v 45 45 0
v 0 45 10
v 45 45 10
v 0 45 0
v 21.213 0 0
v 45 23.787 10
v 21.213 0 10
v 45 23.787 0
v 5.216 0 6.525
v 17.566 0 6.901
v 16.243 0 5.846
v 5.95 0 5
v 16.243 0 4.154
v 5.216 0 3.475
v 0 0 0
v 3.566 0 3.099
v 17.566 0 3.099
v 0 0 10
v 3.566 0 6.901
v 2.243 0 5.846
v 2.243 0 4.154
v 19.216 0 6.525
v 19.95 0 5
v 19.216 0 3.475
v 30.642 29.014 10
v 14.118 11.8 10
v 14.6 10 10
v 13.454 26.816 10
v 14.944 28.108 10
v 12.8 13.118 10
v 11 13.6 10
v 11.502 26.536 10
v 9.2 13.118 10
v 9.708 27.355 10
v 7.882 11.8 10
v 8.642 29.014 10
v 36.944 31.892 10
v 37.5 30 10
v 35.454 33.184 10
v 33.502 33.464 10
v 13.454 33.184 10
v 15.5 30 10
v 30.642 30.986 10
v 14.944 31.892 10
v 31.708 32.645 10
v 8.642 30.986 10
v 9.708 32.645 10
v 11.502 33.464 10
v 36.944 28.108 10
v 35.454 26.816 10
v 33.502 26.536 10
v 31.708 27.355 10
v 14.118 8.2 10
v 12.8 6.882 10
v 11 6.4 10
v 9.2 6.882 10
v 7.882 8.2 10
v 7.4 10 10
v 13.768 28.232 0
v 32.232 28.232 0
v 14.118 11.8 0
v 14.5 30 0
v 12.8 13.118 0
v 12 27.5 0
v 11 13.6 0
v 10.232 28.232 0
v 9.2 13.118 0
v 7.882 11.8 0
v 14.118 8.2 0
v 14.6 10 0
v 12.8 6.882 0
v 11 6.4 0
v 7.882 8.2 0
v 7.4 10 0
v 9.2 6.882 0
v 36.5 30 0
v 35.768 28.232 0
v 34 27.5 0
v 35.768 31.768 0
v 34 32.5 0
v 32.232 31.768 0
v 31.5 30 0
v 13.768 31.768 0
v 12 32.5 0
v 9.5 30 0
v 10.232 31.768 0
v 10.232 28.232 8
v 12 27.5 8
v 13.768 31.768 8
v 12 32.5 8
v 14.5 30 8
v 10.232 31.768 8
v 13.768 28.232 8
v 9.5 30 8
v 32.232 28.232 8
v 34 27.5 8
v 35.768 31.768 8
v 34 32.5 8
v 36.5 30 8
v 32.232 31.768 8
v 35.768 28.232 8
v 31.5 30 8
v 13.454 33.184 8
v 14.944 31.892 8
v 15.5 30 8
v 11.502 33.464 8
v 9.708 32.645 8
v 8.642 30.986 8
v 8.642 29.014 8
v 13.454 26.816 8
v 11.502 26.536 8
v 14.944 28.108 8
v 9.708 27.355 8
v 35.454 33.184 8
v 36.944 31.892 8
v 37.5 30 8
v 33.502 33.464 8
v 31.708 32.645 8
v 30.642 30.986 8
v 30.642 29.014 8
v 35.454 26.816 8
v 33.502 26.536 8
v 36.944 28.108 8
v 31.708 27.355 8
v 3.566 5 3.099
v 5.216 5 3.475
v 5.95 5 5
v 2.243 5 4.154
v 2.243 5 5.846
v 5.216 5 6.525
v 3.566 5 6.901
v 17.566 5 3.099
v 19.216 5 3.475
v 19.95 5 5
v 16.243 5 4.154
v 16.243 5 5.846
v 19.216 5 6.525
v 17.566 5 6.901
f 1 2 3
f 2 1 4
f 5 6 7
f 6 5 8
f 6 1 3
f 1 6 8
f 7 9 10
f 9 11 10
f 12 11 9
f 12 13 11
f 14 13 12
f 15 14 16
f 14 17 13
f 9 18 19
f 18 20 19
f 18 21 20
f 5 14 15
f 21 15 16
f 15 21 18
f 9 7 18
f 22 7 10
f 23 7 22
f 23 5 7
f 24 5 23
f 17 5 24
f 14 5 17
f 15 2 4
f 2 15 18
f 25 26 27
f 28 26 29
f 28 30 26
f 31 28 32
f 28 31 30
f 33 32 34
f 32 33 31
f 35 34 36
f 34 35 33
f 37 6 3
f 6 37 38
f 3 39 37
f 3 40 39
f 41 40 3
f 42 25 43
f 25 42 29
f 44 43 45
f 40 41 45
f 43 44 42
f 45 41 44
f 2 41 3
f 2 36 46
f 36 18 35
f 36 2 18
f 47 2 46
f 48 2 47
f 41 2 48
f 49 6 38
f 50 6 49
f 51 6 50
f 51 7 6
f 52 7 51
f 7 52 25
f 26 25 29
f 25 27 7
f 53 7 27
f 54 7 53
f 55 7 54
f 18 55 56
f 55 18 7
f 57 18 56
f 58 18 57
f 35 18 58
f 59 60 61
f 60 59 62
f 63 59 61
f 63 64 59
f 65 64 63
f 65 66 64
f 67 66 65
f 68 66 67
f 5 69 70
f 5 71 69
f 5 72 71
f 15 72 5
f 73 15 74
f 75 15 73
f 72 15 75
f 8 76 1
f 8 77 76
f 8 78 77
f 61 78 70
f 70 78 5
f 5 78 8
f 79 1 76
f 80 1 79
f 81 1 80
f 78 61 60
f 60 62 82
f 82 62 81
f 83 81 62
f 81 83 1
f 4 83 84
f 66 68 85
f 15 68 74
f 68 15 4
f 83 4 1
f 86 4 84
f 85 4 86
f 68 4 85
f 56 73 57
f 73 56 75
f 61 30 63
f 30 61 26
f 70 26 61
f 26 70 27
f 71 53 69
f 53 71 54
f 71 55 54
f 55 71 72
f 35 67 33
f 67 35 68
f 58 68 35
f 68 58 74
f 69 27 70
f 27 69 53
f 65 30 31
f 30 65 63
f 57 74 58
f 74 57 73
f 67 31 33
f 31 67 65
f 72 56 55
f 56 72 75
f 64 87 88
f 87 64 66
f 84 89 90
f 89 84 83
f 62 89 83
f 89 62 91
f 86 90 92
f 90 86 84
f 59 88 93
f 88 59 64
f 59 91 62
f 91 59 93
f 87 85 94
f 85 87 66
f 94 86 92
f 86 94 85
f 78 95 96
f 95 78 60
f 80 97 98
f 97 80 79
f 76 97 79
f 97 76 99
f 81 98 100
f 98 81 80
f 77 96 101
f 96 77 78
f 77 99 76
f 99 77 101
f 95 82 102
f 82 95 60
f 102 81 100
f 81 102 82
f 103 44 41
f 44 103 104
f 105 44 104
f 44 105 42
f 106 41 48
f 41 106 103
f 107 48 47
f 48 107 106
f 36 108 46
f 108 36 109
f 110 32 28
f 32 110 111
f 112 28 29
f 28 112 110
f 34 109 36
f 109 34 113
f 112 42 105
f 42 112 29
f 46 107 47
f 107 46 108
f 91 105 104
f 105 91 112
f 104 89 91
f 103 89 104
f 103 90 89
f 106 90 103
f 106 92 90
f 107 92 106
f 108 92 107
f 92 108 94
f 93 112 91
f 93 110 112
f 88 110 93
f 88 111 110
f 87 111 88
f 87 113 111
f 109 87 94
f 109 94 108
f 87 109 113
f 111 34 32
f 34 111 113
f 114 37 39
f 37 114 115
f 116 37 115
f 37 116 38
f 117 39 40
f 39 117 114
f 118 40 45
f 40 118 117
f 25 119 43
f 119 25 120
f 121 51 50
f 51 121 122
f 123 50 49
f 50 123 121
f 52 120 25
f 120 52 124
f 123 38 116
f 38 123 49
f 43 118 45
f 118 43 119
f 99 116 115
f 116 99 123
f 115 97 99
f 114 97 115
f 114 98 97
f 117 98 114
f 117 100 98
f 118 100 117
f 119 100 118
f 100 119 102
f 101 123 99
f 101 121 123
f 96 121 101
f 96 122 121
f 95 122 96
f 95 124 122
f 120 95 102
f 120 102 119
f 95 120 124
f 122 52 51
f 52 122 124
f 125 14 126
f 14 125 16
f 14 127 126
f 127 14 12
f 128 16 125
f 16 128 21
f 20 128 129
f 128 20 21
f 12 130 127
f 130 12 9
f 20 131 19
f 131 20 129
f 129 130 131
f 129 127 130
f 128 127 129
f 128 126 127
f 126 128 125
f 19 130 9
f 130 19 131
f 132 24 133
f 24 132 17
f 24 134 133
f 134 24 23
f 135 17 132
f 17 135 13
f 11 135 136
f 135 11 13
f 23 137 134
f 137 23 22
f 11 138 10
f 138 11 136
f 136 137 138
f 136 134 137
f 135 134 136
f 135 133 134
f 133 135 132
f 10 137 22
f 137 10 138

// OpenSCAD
// V2 Holes to mount a belt and resess the small screw heads

difference(){
    //Main body
    linear_extrude(10){
        difference(){
        square(45,50);
        rotate(-45)translate([15,10]){square(40,50);}
    }}

    //Screw holes
    translate([11,10]){cylinder(10,3.6,3.6);}
    translate([12,30]){cylinder(10,2.5,2.5);}
    translate([34,30]){cylinder(10,2.5,2.5);}

    //Small screw pockets
    translate([12,30,8]){cylinder(4,3.5,3.5);}
    translate([34,30,8]){cylinder(4,3.5,3.5);} 
      
    //Belt screw holes
    translate([4,-1,5])rotate(a=[270,0,0]){cylinder(6,1.95,1.95);}
    translate([18,-1,5])rotate(a=[270,0,0]){cylinder(6,1.95,1.95);}
}
